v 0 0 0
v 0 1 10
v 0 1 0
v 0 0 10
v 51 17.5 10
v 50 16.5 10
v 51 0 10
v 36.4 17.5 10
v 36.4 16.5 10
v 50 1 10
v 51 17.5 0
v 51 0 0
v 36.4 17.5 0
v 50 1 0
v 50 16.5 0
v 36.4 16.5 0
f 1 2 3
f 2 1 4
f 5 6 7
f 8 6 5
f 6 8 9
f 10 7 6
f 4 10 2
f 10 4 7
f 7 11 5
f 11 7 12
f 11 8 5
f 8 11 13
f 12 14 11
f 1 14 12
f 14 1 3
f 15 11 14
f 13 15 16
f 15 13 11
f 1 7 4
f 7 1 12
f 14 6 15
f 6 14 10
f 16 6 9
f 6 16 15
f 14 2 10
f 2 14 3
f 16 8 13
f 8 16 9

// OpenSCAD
difference() {
    
    cube([51,17.5,10]);
    
    translate([0,1,0])
        cube([50,15.5,10]);
    translate([0,16.5,0])
        cube([51-14.6,1,10]);

}
